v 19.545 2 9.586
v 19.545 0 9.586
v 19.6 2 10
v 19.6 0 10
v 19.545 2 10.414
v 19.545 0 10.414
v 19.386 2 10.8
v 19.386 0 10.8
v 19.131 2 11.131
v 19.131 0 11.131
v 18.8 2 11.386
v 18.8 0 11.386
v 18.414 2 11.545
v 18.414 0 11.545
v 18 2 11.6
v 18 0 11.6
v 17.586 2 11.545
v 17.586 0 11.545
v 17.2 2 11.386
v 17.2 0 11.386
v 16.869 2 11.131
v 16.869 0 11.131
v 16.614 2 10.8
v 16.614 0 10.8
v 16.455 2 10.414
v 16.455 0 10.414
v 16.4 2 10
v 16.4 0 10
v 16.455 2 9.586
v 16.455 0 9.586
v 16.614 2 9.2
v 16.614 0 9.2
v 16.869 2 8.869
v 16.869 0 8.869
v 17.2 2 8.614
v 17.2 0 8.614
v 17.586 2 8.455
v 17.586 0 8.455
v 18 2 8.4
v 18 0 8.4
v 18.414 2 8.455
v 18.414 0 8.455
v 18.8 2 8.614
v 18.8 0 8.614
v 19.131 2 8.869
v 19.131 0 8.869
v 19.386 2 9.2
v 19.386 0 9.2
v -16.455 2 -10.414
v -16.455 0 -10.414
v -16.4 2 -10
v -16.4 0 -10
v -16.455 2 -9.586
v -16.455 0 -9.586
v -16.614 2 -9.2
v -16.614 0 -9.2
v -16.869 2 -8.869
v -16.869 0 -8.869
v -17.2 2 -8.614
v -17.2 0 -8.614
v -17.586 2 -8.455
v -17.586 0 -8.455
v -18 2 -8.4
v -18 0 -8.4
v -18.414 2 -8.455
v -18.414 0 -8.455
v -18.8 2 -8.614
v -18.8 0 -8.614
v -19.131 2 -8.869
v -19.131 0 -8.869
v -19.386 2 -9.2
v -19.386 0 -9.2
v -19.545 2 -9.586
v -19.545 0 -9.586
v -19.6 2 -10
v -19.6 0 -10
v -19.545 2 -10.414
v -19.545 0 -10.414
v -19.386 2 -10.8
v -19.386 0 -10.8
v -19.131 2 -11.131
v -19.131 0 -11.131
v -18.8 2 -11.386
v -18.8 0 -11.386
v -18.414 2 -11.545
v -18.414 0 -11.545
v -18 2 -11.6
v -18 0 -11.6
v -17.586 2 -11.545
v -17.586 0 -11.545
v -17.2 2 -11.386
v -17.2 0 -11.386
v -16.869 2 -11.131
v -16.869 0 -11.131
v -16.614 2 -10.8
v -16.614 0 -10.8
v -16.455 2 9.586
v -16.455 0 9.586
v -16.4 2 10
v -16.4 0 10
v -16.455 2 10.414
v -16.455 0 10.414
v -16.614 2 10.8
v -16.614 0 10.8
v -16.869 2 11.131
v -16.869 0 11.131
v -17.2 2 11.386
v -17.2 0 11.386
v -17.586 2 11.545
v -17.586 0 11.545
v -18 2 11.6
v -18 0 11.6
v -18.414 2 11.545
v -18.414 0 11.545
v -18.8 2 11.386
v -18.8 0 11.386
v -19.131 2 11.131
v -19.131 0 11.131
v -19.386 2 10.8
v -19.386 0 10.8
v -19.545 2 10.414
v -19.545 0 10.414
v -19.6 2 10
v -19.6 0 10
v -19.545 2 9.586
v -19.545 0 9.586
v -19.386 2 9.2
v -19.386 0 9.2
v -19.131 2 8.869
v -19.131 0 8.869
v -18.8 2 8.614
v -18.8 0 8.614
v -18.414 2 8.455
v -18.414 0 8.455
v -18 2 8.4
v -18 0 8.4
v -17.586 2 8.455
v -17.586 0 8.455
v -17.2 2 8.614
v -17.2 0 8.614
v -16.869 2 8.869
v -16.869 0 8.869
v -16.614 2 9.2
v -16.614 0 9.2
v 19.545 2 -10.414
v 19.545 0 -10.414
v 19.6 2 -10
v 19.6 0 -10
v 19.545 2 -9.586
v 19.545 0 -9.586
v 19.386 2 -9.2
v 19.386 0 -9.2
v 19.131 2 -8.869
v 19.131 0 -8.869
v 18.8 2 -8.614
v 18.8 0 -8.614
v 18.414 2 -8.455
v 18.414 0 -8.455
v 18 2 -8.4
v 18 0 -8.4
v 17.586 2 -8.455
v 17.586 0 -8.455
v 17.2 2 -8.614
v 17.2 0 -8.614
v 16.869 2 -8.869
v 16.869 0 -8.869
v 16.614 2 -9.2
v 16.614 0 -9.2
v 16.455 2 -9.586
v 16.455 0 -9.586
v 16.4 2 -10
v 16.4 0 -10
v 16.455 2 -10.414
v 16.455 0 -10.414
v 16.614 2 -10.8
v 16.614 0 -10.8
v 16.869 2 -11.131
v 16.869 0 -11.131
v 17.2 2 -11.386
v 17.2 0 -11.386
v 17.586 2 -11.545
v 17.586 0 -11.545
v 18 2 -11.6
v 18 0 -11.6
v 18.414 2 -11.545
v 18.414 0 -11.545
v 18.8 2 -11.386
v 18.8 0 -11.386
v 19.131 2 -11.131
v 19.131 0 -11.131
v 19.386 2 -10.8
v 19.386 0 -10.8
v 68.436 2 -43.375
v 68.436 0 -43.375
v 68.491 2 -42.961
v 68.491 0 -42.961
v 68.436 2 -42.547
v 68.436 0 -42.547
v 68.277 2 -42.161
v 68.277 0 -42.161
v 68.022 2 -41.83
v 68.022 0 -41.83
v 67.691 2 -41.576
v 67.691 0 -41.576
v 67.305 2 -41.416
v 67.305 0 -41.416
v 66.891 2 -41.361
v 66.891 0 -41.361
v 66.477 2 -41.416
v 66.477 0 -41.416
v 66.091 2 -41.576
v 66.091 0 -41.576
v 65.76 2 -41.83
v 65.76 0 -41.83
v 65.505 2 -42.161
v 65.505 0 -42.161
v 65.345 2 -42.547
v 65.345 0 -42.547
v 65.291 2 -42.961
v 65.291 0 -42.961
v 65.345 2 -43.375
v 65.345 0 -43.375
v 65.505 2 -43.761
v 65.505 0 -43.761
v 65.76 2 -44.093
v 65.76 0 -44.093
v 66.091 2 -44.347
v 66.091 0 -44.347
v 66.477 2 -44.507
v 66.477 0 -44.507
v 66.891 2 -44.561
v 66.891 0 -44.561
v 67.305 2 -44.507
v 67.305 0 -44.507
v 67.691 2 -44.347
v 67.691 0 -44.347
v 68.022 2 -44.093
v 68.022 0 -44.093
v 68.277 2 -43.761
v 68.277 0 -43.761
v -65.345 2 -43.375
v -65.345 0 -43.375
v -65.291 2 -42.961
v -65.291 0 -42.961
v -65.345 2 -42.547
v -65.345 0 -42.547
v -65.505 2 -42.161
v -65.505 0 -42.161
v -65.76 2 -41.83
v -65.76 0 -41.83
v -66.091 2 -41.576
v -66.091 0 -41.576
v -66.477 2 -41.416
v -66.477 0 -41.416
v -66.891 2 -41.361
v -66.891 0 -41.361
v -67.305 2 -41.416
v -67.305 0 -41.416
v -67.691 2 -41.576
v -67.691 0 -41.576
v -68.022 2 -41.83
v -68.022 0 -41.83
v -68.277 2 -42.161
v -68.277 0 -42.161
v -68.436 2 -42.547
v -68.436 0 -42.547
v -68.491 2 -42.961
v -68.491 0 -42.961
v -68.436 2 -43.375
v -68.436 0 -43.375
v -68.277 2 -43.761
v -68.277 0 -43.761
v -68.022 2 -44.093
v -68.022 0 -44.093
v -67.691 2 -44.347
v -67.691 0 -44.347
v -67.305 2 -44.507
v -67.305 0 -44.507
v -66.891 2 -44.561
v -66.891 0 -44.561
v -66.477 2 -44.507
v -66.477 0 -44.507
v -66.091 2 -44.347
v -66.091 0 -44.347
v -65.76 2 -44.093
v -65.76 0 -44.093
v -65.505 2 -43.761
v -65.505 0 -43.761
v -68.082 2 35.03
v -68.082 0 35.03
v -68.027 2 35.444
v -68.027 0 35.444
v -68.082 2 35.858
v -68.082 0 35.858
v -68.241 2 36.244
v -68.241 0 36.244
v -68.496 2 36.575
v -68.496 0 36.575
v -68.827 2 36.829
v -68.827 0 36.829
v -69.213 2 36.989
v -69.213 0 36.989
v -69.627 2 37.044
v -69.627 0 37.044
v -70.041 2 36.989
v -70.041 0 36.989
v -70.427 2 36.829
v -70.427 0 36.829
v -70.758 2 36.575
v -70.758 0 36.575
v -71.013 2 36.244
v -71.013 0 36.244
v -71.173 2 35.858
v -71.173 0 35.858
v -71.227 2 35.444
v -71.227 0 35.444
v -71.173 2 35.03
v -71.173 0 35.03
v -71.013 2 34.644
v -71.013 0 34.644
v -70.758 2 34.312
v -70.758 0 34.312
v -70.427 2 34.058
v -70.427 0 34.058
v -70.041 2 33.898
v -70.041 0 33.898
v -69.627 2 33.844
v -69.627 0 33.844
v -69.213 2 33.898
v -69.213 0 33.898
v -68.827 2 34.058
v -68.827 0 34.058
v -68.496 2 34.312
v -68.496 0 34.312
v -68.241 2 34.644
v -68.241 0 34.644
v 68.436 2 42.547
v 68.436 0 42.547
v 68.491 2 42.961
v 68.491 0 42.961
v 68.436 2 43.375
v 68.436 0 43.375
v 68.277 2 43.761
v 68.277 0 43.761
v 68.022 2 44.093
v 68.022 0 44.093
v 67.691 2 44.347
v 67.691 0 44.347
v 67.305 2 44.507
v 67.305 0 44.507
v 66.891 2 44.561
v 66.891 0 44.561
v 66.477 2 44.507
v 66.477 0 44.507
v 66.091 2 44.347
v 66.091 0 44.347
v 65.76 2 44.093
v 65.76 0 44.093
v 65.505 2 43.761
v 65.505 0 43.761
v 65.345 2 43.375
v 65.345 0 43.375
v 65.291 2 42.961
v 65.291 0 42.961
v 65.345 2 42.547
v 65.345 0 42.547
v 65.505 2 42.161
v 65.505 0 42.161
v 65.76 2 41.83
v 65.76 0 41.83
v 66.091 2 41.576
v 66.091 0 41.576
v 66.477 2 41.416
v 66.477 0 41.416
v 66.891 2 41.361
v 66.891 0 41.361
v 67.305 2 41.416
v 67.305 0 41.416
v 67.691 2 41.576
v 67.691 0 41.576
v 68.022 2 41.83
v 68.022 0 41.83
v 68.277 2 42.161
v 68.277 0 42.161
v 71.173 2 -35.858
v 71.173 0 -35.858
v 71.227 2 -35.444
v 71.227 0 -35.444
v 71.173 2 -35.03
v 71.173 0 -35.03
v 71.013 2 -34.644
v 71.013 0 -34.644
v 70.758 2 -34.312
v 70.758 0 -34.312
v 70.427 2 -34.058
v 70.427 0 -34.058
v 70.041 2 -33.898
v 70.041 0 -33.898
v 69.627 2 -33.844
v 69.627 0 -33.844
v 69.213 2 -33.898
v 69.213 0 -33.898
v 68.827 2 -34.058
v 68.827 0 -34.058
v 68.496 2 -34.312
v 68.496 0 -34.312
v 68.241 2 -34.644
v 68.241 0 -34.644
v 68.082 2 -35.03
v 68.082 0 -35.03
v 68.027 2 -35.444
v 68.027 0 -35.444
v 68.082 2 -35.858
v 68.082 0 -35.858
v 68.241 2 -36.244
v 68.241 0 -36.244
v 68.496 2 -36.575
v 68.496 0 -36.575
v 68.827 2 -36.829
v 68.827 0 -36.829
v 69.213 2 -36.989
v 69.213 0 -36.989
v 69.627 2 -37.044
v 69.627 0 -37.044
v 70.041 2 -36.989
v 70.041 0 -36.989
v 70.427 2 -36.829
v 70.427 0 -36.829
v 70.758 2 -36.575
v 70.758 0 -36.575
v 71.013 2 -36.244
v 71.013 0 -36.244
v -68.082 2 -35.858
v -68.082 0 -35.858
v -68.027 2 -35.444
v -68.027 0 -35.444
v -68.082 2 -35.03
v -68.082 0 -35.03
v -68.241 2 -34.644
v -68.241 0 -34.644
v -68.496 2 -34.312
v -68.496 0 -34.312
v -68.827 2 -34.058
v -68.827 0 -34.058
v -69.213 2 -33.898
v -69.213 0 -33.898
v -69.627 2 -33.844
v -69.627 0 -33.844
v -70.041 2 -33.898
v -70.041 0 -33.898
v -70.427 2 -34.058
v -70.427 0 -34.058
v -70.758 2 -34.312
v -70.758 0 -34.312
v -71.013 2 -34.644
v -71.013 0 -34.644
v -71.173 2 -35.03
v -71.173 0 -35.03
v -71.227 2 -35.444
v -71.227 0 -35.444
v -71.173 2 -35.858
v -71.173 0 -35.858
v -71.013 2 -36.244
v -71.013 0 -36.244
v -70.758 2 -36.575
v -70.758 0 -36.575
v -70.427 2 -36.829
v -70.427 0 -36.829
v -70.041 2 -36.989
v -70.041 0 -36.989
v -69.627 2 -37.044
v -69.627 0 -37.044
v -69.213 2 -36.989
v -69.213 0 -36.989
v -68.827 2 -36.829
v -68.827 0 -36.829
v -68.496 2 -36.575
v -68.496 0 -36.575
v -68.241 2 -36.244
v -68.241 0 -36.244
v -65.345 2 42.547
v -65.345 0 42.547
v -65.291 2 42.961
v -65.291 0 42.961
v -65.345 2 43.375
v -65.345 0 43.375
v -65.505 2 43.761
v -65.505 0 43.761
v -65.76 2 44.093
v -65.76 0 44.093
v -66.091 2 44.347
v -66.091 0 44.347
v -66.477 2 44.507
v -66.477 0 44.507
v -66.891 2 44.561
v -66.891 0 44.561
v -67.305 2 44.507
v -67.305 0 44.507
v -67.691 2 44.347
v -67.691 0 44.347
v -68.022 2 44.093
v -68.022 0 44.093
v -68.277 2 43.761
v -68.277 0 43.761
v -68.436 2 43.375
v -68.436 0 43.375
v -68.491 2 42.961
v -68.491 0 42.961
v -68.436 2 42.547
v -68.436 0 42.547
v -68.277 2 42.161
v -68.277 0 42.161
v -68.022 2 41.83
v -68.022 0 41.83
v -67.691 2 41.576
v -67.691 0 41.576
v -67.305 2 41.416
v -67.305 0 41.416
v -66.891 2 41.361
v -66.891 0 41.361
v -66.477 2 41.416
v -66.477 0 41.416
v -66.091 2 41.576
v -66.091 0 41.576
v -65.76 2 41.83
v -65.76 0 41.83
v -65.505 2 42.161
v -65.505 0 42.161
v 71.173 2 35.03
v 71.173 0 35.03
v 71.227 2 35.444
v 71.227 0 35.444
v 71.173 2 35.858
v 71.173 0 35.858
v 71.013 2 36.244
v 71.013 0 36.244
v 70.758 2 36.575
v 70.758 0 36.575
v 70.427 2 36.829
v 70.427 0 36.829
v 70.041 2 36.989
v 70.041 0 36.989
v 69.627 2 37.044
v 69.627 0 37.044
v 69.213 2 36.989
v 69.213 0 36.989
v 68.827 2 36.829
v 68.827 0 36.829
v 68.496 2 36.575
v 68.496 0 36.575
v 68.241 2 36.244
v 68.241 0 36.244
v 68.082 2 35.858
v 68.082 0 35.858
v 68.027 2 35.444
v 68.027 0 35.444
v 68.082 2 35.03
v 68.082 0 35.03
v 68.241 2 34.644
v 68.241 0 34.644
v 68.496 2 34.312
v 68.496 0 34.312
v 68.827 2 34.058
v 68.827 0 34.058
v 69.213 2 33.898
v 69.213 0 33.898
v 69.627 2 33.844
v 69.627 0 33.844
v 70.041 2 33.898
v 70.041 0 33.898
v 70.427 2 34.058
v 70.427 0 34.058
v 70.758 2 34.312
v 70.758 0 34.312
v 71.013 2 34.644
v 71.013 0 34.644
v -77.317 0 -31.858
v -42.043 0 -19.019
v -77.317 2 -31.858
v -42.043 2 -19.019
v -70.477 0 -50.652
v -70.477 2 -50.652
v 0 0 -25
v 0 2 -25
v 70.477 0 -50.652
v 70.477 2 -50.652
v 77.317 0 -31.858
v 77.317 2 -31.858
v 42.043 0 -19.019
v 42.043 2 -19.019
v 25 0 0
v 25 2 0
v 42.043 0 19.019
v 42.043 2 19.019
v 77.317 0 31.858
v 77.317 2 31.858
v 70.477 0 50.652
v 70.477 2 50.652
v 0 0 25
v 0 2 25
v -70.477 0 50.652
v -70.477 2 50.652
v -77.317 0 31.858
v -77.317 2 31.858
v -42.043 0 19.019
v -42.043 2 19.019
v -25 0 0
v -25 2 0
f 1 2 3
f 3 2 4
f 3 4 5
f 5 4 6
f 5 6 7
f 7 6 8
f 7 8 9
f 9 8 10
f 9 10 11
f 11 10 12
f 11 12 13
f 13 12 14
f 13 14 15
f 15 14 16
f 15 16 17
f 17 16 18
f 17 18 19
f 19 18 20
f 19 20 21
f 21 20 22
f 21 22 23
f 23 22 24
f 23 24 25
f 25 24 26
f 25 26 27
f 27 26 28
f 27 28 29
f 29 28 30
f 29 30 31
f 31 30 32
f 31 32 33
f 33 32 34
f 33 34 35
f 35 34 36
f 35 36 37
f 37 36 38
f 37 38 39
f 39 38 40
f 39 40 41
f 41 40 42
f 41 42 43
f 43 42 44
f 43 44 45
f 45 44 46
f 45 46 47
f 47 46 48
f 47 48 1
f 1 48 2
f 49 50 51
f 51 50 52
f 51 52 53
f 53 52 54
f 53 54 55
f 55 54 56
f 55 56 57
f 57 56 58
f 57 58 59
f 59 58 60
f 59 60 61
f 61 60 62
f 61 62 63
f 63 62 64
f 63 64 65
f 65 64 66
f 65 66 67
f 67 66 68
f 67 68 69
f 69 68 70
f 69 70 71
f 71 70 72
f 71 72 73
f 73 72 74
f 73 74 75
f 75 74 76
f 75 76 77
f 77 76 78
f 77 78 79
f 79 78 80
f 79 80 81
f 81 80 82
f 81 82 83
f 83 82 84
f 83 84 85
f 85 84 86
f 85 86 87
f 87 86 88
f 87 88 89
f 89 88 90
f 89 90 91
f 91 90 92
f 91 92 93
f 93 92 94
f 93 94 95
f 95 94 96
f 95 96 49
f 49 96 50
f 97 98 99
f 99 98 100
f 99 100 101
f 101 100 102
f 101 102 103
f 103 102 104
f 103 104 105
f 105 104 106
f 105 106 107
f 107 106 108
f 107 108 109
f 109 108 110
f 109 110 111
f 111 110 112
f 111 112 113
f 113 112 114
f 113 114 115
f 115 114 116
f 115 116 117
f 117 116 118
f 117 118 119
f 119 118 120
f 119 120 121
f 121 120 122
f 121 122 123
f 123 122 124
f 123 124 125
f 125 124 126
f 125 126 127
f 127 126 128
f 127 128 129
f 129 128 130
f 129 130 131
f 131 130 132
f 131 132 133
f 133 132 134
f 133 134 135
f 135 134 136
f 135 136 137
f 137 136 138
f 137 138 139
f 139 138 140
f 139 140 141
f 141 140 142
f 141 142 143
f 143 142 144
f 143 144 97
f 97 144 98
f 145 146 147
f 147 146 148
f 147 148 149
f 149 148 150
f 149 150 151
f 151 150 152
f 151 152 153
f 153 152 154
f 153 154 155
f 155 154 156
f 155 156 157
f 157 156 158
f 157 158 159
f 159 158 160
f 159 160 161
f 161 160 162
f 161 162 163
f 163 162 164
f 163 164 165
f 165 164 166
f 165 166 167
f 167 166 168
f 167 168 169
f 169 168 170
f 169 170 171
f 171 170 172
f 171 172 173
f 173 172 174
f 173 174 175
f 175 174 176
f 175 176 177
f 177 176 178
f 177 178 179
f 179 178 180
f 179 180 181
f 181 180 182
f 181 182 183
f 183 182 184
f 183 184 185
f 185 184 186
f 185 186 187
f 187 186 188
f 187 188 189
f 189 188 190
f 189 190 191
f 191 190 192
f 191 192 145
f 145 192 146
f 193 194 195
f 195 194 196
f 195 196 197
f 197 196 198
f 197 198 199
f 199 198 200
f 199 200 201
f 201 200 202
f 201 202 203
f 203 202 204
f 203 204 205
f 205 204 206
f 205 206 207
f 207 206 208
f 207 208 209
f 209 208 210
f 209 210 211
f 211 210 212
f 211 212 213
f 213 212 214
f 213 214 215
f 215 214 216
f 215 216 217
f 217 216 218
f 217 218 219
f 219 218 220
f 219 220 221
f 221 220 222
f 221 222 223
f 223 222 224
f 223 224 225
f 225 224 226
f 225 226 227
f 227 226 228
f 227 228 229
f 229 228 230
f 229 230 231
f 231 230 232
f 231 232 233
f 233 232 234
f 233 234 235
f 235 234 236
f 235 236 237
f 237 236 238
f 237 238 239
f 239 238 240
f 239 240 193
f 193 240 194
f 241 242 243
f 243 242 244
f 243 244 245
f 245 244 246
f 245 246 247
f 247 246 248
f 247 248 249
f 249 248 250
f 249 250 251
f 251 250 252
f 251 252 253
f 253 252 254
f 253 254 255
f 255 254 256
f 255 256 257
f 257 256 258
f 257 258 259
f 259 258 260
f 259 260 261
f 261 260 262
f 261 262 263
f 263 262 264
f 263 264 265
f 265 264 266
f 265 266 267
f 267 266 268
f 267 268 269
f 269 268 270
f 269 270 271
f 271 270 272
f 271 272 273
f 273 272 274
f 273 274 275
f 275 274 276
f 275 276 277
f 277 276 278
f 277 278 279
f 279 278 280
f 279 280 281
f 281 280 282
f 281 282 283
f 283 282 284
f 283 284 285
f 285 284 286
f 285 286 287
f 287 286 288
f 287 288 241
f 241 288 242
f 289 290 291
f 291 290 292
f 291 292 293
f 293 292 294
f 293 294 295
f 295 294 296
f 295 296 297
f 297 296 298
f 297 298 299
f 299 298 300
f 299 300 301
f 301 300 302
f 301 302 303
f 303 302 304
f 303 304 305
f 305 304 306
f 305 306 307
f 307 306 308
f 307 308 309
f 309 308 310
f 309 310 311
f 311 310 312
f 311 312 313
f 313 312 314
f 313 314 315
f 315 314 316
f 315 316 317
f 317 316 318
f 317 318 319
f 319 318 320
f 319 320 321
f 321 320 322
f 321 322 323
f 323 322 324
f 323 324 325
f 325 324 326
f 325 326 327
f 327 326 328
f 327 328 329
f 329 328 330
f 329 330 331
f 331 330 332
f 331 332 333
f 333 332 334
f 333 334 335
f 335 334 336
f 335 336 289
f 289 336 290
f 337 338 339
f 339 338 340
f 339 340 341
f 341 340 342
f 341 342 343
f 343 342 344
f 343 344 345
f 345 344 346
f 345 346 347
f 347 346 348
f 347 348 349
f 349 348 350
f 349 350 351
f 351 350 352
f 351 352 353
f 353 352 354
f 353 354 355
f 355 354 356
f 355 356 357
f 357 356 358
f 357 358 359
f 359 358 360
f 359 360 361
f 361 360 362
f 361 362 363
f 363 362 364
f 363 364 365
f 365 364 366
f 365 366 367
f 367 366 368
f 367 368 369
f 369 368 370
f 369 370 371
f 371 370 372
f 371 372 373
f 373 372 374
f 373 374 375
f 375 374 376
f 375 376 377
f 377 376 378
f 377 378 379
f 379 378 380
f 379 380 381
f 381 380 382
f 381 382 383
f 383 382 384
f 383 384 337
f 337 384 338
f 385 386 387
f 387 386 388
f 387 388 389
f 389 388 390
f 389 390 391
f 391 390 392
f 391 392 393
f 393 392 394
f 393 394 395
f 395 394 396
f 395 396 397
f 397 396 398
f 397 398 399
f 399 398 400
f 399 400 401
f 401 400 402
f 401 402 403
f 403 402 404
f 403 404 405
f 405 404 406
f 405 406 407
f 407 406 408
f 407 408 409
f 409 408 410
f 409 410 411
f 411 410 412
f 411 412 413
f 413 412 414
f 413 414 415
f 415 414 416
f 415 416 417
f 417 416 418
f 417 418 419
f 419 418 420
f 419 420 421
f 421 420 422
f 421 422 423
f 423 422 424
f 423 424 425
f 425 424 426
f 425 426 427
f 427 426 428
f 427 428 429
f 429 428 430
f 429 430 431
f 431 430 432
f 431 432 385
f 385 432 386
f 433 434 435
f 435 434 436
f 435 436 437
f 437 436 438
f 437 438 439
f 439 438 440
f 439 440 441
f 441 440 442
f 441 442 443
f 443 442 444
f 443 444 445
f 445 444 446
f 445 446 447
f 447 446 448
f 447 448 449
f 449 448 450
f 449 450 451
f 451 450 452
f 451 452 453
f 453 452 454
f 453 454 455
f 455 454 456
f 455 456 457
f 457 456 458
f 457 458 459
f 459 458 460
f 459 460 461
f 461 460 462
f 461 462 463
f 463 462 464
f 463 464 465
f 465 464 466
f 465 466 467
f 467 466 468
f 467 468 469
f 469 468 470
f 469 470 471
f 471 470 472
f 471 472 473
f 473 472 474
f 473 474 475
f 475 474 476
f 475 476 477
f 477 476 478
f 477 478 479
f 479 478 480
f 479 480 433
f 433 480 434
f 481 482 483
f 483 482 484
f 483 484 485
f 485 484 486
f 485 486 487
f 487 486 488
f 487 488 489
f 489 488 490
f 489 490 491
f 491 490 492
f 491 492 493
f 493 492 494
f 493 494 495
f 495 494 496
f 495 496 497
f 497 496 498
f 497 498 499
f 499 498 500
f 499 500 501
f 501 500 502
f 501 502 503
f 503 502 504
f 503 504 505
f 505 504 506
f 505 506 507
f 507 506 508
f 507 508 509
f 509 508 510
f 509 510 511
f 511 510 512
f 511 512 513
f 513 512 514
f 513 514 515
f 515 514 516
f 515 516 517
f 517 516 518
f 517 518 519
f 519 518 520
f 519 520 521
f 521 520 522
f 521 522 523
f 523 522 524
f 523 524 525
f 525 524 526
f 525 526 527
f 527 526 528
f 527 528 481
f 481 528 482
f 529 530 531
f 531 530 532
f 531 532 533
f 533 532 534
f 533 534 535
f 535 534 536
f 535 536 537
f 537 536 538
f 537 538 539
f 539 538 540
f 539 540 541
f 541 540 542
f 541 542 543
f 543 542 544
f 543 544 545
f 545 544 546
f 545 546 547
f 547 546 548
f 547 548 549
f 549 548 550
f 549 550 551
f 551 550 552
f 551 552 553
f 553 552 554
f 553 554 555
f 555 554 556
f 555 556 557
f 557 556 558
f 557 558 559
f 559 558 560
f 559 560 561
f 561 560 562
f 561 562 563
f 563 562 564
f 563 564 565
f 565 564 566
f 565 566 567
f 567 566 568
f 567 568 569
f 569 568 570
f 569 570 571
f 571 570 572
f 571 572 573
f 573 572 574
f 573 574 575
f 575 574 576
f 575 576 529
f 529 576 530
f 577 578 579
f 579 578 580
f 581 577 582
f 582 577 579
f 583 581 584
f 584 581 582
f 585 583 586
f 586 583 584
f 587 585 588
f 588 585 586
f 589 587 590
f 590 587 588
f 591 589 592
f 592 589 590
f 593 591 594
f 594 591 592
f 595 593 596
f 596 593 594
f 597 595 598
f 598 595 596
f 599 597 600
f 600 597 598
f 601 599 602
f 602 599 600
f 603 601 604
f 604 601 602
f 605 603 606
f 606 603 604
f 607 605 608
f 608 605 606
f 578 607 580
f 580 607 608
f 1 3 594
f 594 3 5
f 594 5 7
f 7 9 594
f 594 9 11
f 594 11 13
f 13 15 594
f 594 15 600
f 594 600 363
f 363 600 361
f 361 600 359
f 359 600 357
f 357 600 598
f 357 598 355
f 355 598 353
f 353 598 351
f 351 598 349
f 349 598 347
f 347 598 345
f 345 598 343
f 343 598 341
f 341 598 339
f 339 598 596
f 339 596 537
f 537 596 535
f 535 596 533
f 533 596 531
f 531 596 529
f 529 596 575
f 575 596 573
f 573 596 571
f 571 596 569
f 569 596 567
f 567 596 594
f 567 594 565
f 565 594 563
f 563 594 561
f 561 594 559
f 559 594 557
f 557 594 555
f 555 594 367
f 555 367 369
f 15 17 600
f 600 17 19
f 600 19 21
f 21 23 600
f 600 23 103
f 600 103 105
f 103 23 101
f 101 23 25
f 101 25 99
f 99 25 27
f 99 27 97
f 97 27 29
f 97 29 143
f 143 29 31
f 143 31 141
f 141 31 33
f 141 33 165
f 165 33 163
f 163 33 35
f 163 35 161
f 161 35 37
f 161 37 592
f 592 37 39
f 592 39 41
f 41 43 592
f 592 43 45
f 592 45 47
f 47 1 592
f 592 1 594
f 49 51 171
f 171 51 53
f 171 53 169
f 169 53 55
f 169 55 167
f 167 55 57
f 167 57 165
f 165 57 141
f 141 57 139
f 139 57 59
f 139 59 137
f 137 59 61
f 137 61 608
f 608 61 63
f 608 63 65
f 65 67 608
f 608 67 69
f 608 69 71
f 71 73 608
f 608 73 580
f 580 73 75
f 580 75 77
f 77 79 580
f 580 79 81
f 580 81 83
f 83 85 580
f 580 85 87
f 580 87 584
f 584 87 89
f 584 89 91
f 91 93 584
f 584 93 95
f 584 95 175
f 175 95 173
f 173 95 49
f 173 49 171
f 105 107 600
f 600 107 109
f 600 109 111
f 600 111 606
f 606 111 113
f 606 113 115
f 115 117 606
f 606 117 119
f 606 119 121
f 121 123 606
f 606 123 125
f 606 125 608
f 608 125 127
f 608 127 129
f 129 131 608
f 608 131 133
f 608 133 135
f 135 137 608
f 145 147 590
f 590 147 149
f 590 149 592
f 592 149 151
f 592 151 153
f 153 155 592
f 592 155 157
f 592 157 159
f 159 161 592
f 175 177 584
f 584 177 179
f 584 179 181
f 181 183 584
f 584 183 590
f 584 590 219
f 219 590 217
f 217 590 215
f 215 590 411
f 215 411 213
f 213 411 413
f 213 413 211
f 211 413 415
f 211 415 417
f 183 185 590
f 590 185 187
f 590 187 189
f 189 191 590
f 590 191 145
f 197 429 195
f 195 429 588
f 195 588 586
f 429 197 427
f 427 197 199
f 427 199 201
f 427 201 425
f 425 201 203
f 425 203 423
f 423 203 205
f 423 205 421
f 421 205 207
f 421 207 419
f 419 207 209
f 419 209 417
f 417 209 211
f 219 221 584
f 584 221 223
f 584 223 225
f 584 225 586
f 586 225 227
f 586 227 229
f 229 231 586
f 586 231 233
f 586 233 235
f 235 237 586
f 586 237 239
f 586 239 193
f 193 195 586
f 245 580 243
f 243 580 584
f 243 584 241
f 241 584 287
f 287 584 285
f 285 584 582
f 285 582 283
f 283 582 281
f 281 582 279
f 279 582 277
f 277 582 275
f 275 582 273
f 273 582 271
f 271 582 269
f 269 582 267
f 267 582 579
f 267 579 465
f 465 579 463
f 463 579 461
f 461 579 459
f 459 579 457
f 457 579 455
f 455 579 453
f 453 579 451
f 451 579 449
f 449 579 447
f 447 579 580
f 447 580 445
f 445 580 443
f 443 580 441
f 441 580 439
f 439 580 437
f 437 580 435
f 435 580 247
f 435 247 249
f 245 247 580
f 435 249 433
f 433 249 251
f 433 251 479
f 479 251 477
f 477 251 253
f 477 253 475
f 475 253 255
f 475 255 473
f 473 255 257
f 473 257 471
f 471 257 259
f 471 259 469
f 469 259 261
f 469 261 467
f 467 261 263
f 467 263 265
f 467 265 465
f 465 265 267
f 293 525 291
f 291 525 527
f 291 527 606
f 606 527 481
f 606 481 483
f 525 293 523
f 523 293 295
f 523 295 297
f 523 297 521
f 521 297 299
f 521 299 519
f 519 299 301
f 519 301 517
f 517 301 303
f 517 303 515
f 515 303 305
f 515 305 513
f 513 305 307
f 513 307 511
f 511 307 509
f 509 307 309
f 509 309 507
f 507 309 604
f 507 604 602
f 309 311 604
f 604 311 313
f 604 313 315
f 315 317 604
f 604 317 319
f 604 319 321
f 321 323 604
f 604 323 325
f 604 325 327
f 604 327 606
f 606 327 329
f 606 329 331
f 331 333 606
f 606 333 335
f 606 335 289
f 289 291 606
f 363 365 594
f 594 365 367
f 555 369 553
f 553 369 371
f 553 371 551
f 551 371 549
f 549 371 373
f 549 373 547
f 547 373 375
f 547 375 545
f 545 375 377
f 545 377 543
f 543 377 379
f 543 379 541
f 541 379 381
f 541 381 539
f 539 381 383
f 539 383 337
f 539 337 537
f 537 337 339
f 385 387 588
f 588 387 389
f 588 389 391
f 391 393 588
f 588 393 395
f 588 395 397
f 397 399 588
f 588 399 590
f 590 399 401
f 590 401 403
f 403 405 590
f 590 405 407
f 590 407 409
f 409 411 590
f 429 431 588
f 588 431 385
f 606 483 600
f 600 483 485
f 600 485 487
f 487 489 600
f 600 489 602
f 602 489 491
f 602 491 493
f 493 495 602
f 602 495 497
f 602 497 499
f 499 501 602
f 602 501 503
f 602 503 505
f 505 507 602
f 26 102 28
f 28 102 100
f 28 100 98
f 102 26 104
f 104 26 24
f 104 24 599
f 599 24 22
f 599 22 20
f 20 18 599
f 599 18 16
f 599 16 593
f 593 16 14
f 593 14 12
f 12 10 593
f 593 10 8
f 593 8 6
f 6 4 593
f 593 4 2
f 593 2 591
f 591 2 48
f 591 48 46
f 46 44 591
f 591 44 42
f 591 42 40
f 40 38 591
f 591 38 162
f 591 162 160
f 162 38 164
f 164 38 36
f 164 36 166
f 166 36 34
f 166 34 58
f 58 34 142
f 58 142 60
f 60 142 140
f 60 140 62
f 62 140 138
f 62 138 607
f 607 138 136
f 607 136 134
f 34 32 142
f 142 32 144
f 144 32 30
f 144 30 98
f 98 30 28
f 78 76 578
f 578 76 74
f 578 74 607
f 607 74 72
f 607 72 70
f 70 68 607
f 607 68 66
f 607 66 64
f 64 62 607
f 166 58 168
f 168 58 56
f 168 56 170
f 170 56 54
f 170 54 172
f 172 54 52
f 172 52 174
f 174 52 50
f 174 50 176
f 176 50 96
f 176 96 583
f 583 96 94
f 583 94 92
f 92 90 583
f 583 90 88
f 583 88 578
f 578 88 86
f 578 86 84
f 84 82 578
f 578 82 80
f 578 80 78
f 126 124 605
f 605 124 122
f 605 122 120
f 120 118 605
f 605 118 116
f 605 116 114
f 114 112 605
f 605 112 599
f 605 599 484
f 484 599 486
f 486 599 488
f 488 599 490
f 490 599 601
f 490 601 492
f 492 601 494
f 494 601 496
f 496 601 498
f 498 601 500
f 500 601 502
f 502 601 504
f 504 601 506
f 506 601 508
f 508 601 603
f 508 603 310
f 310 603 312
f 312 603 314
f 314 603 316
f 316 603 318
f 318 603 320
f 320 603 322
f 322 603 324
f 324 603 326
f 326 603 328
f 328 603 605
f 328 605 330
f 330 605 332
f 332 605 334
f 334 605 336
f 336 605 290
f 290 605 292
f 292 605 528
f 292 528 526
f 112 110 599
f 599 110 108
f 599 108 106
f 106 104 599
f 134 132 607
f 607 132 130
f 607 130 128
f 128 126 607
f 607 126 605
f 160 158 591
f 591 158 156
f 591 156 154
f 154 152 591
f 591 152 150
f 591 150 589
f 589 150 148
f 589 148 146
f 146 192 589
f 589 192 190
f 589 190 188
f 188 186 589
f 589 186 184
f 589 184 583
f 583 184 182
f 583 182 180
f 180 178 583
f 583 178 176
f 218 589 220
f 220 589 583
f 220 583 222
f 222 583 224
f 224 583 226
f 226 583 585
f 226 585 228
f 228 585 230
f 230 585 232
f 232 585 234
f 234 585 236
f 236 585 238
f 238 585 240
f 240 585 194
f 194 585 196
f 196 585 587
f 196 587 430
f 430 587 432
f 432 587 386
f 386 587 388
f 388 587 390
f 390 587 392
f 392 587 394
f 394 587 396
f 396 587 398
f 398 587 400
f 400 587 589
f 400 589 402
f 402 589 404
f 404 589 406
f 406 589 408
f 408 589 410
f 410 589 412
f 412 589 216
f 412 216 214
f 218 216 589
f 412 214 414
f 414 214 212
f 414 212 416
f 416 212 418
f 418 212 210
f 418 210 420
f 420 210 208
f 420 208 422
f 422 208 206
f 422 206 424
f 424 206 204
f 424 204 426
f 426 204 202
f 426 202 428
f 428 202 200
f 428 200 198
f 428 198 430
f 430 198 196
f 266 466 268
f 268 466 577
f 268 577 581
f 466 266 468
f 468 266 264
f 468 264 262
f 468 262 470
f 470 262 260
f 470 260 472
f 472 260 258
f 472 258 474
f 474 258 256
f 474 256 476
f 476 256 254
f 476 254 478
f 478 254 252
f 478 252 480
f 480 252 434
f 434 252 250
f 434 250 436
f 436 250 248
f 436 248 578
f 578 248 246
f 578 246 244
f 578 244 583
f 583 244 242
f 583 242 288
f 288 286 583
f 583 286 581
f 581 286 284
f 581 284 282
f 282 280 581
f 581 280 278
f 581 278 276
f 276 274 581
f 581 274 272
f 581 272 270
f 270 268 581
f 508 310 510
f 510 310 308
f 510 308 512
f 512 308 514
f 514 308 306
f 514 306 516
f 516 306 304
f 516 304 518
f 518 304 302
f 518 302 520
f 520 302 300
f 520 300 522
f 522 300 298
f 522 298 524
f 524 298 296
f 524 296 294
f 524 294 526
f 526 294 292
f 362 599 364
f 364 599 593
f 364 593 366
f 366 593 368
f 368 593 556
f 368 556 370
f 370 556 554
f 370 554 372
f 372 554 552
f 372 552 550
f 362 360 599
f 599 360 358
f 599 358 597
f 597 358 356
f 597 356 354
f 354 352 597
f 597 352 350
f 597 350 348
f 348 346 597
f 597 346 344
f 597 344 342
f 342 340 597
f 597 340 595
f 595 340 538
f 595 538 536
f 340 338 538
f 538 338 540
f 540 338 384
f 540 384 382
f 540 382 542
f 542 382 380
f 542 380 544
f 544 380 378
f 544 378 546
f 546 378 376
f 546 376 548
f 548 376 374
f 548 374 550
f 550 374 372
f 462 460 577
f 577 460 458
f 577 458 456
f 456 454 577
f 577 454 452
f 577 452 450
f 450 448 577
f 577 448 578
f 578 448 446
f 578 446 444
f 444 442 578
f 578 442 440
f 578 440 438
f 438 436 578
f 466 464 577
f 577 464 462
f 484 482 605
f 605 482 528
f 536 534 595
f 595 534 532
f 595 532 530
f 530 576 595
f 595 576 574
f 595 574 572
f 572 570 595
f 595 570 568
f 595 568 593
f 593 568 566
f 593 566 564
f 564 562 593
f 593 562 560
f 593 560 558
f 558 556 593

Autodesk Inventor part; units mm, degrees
ref_plane "YZ Plane" through (0, 0, 0) normal (1, 0, 0) x (0, 1, 0)
ref_plane "XZ Plane" through (0, 0, 0) normal (0, 1, 0) x (-1, 0, 0)
ref_plane "XY Plane" through (0, 0, 0) normal (0, 0, 1) x (1, 0, 0)
sketch "Skizze1" plane through (0, 0, 0) normal (0, 1, 0) x (-1, 0, 0)
  line L0 (25, -25) -> (-25, -25)
  line L1 (-25, -25) -> (-25, 25)
  line L2 (-25, 25) -> (25, 25)
  line L3 (25, 25) -> (25, -25)
  line L4 (0, -70.9121) -> (0, 70.9121) projected
  line L5 (0, -25) -> (-70.4769, -50.6515)
  line L6 (-70.4769, -50.6515) -> (-77.3173, -31.8577)
  line L7 (-77.3173, -31.8577) -> (-42.0428, -19.0188)
  line L8 (842.0086, 0) -> (-811.3812, 0) projected
  line L9 (0, -25) -> (70.4769, -50.6515)
  line L10 (70.4769, -50.6515) -> (77.3173, -31.8577)
  line L11 (77.3173, -31.8577) -> (42.0428, -19.0188)
  line L12 (-842.0086, 0) -> (811.3812, 0)
  line L13 (0, 25) -> (-70.4769, 50.6515)
  line L14 (-70.4769, 50.6515) -> (-77.3173, 31.8577)
  line L15 (-77.3173, 31.8577) -> (-42.0428, 19.0188)
  line L16 (77.3173, 31.8577) -> (42.0428, 19.0188)
  line L17 (0, 25) -> (70.4769, 50.6515)
  line L18 (70.4769, 50.6515) -> (77.3173, 31.8577)
  line L19 (-42.0428, -19.0188) -> (-25, 0)
  line L20 (42.0428, -19.0188) -> (25, 0)
  line L21 (-42.0428, 19.0188) -> (-25, 0)
  line L22 (42.0428, 19.0188) -> (25, 0)
  point P0 (0, 0)
  dimension "d0" = 50
  dimension "d1" = 50
  dimension "d3" = 75
  dimension "d6" = 20
  dimension "d7" = 20
  dimension "d8" = 90
  dimension "d12" = 41.864
extrude "Extrusion1" add sketch "Skizze1" along normal blind 2
sketch "Skizze2" plane through (0, 2, 0) normal (0, 1, 0) x (1, 0, 0)
  circle A0 centre (-66.8909, 42.9612) radius 1.6
  line L0 (0, 25) -> (-70.4769, 50.6515) projected
  line L1 (-70.4769, 50.6515) -> (-77.3173, 31.8577) projected
  circle A1 centre (-69.6271, 35.4437) radius 1.6
  line L2 (-77.3173, 31.8577) -> (-42.0428, 19.0188) projected
  line L3 (0, 70.9121) -> (0, -70.9121) projected
  line L4 (108.2443, 0) -> (-108.2443, 0) projected
  circle A2 centre (66.8909, 42.9612) radius 1.6
  circle A3 centre (69.6271, 35.4437) radius 1.6
  circle A4 centre (-66.8909, -42.9612) radius 1.6
  circle A5 centre (-69.6271, -35.4437) radius 1.6
  circle A6 centre (66.8909, -42.9612) radius 1.6
  circle A7 centre (69.6271, -35.4437) radius 1.6
  point P0 (0, 0)
  dimension "d15" = 3.2
  dimension "d16" = 6
  dimension "d17" = 6
  dimension "d18" = 3.2
  dimension "d19" = 6
  dimension "d20" = 6
extrude "Extrusion2" cut sketch "Skizze2" against normal up to surface (2 mm away)
sketch "Skizze3" plane through (0, 2, 0) normal (0, 1, 0) x (1, 0, 0)
  circle A0 centre (-18, 10) radius 1.6
  line L0 (0, 70.9121) -> (0, -70.9121) projected
  line L1 (108.2443, 0) -> (-108.2443, 0) projected
  circle A1 centre (-18, -10) radius 1.6
  circle A2 centre (18, 10) radius 1.6
  circle A3 centre (18, -10) radius 1.6
  point P0 (0, 0)
  dimension "d23" = 3.2
  dimension "d24" = 18
  dimension "d25" = 10
extrude "Extrusion3" cut sketch "Skizze3" against normal up to surface (2 mm away)
properties part number "_3D-Druck"
